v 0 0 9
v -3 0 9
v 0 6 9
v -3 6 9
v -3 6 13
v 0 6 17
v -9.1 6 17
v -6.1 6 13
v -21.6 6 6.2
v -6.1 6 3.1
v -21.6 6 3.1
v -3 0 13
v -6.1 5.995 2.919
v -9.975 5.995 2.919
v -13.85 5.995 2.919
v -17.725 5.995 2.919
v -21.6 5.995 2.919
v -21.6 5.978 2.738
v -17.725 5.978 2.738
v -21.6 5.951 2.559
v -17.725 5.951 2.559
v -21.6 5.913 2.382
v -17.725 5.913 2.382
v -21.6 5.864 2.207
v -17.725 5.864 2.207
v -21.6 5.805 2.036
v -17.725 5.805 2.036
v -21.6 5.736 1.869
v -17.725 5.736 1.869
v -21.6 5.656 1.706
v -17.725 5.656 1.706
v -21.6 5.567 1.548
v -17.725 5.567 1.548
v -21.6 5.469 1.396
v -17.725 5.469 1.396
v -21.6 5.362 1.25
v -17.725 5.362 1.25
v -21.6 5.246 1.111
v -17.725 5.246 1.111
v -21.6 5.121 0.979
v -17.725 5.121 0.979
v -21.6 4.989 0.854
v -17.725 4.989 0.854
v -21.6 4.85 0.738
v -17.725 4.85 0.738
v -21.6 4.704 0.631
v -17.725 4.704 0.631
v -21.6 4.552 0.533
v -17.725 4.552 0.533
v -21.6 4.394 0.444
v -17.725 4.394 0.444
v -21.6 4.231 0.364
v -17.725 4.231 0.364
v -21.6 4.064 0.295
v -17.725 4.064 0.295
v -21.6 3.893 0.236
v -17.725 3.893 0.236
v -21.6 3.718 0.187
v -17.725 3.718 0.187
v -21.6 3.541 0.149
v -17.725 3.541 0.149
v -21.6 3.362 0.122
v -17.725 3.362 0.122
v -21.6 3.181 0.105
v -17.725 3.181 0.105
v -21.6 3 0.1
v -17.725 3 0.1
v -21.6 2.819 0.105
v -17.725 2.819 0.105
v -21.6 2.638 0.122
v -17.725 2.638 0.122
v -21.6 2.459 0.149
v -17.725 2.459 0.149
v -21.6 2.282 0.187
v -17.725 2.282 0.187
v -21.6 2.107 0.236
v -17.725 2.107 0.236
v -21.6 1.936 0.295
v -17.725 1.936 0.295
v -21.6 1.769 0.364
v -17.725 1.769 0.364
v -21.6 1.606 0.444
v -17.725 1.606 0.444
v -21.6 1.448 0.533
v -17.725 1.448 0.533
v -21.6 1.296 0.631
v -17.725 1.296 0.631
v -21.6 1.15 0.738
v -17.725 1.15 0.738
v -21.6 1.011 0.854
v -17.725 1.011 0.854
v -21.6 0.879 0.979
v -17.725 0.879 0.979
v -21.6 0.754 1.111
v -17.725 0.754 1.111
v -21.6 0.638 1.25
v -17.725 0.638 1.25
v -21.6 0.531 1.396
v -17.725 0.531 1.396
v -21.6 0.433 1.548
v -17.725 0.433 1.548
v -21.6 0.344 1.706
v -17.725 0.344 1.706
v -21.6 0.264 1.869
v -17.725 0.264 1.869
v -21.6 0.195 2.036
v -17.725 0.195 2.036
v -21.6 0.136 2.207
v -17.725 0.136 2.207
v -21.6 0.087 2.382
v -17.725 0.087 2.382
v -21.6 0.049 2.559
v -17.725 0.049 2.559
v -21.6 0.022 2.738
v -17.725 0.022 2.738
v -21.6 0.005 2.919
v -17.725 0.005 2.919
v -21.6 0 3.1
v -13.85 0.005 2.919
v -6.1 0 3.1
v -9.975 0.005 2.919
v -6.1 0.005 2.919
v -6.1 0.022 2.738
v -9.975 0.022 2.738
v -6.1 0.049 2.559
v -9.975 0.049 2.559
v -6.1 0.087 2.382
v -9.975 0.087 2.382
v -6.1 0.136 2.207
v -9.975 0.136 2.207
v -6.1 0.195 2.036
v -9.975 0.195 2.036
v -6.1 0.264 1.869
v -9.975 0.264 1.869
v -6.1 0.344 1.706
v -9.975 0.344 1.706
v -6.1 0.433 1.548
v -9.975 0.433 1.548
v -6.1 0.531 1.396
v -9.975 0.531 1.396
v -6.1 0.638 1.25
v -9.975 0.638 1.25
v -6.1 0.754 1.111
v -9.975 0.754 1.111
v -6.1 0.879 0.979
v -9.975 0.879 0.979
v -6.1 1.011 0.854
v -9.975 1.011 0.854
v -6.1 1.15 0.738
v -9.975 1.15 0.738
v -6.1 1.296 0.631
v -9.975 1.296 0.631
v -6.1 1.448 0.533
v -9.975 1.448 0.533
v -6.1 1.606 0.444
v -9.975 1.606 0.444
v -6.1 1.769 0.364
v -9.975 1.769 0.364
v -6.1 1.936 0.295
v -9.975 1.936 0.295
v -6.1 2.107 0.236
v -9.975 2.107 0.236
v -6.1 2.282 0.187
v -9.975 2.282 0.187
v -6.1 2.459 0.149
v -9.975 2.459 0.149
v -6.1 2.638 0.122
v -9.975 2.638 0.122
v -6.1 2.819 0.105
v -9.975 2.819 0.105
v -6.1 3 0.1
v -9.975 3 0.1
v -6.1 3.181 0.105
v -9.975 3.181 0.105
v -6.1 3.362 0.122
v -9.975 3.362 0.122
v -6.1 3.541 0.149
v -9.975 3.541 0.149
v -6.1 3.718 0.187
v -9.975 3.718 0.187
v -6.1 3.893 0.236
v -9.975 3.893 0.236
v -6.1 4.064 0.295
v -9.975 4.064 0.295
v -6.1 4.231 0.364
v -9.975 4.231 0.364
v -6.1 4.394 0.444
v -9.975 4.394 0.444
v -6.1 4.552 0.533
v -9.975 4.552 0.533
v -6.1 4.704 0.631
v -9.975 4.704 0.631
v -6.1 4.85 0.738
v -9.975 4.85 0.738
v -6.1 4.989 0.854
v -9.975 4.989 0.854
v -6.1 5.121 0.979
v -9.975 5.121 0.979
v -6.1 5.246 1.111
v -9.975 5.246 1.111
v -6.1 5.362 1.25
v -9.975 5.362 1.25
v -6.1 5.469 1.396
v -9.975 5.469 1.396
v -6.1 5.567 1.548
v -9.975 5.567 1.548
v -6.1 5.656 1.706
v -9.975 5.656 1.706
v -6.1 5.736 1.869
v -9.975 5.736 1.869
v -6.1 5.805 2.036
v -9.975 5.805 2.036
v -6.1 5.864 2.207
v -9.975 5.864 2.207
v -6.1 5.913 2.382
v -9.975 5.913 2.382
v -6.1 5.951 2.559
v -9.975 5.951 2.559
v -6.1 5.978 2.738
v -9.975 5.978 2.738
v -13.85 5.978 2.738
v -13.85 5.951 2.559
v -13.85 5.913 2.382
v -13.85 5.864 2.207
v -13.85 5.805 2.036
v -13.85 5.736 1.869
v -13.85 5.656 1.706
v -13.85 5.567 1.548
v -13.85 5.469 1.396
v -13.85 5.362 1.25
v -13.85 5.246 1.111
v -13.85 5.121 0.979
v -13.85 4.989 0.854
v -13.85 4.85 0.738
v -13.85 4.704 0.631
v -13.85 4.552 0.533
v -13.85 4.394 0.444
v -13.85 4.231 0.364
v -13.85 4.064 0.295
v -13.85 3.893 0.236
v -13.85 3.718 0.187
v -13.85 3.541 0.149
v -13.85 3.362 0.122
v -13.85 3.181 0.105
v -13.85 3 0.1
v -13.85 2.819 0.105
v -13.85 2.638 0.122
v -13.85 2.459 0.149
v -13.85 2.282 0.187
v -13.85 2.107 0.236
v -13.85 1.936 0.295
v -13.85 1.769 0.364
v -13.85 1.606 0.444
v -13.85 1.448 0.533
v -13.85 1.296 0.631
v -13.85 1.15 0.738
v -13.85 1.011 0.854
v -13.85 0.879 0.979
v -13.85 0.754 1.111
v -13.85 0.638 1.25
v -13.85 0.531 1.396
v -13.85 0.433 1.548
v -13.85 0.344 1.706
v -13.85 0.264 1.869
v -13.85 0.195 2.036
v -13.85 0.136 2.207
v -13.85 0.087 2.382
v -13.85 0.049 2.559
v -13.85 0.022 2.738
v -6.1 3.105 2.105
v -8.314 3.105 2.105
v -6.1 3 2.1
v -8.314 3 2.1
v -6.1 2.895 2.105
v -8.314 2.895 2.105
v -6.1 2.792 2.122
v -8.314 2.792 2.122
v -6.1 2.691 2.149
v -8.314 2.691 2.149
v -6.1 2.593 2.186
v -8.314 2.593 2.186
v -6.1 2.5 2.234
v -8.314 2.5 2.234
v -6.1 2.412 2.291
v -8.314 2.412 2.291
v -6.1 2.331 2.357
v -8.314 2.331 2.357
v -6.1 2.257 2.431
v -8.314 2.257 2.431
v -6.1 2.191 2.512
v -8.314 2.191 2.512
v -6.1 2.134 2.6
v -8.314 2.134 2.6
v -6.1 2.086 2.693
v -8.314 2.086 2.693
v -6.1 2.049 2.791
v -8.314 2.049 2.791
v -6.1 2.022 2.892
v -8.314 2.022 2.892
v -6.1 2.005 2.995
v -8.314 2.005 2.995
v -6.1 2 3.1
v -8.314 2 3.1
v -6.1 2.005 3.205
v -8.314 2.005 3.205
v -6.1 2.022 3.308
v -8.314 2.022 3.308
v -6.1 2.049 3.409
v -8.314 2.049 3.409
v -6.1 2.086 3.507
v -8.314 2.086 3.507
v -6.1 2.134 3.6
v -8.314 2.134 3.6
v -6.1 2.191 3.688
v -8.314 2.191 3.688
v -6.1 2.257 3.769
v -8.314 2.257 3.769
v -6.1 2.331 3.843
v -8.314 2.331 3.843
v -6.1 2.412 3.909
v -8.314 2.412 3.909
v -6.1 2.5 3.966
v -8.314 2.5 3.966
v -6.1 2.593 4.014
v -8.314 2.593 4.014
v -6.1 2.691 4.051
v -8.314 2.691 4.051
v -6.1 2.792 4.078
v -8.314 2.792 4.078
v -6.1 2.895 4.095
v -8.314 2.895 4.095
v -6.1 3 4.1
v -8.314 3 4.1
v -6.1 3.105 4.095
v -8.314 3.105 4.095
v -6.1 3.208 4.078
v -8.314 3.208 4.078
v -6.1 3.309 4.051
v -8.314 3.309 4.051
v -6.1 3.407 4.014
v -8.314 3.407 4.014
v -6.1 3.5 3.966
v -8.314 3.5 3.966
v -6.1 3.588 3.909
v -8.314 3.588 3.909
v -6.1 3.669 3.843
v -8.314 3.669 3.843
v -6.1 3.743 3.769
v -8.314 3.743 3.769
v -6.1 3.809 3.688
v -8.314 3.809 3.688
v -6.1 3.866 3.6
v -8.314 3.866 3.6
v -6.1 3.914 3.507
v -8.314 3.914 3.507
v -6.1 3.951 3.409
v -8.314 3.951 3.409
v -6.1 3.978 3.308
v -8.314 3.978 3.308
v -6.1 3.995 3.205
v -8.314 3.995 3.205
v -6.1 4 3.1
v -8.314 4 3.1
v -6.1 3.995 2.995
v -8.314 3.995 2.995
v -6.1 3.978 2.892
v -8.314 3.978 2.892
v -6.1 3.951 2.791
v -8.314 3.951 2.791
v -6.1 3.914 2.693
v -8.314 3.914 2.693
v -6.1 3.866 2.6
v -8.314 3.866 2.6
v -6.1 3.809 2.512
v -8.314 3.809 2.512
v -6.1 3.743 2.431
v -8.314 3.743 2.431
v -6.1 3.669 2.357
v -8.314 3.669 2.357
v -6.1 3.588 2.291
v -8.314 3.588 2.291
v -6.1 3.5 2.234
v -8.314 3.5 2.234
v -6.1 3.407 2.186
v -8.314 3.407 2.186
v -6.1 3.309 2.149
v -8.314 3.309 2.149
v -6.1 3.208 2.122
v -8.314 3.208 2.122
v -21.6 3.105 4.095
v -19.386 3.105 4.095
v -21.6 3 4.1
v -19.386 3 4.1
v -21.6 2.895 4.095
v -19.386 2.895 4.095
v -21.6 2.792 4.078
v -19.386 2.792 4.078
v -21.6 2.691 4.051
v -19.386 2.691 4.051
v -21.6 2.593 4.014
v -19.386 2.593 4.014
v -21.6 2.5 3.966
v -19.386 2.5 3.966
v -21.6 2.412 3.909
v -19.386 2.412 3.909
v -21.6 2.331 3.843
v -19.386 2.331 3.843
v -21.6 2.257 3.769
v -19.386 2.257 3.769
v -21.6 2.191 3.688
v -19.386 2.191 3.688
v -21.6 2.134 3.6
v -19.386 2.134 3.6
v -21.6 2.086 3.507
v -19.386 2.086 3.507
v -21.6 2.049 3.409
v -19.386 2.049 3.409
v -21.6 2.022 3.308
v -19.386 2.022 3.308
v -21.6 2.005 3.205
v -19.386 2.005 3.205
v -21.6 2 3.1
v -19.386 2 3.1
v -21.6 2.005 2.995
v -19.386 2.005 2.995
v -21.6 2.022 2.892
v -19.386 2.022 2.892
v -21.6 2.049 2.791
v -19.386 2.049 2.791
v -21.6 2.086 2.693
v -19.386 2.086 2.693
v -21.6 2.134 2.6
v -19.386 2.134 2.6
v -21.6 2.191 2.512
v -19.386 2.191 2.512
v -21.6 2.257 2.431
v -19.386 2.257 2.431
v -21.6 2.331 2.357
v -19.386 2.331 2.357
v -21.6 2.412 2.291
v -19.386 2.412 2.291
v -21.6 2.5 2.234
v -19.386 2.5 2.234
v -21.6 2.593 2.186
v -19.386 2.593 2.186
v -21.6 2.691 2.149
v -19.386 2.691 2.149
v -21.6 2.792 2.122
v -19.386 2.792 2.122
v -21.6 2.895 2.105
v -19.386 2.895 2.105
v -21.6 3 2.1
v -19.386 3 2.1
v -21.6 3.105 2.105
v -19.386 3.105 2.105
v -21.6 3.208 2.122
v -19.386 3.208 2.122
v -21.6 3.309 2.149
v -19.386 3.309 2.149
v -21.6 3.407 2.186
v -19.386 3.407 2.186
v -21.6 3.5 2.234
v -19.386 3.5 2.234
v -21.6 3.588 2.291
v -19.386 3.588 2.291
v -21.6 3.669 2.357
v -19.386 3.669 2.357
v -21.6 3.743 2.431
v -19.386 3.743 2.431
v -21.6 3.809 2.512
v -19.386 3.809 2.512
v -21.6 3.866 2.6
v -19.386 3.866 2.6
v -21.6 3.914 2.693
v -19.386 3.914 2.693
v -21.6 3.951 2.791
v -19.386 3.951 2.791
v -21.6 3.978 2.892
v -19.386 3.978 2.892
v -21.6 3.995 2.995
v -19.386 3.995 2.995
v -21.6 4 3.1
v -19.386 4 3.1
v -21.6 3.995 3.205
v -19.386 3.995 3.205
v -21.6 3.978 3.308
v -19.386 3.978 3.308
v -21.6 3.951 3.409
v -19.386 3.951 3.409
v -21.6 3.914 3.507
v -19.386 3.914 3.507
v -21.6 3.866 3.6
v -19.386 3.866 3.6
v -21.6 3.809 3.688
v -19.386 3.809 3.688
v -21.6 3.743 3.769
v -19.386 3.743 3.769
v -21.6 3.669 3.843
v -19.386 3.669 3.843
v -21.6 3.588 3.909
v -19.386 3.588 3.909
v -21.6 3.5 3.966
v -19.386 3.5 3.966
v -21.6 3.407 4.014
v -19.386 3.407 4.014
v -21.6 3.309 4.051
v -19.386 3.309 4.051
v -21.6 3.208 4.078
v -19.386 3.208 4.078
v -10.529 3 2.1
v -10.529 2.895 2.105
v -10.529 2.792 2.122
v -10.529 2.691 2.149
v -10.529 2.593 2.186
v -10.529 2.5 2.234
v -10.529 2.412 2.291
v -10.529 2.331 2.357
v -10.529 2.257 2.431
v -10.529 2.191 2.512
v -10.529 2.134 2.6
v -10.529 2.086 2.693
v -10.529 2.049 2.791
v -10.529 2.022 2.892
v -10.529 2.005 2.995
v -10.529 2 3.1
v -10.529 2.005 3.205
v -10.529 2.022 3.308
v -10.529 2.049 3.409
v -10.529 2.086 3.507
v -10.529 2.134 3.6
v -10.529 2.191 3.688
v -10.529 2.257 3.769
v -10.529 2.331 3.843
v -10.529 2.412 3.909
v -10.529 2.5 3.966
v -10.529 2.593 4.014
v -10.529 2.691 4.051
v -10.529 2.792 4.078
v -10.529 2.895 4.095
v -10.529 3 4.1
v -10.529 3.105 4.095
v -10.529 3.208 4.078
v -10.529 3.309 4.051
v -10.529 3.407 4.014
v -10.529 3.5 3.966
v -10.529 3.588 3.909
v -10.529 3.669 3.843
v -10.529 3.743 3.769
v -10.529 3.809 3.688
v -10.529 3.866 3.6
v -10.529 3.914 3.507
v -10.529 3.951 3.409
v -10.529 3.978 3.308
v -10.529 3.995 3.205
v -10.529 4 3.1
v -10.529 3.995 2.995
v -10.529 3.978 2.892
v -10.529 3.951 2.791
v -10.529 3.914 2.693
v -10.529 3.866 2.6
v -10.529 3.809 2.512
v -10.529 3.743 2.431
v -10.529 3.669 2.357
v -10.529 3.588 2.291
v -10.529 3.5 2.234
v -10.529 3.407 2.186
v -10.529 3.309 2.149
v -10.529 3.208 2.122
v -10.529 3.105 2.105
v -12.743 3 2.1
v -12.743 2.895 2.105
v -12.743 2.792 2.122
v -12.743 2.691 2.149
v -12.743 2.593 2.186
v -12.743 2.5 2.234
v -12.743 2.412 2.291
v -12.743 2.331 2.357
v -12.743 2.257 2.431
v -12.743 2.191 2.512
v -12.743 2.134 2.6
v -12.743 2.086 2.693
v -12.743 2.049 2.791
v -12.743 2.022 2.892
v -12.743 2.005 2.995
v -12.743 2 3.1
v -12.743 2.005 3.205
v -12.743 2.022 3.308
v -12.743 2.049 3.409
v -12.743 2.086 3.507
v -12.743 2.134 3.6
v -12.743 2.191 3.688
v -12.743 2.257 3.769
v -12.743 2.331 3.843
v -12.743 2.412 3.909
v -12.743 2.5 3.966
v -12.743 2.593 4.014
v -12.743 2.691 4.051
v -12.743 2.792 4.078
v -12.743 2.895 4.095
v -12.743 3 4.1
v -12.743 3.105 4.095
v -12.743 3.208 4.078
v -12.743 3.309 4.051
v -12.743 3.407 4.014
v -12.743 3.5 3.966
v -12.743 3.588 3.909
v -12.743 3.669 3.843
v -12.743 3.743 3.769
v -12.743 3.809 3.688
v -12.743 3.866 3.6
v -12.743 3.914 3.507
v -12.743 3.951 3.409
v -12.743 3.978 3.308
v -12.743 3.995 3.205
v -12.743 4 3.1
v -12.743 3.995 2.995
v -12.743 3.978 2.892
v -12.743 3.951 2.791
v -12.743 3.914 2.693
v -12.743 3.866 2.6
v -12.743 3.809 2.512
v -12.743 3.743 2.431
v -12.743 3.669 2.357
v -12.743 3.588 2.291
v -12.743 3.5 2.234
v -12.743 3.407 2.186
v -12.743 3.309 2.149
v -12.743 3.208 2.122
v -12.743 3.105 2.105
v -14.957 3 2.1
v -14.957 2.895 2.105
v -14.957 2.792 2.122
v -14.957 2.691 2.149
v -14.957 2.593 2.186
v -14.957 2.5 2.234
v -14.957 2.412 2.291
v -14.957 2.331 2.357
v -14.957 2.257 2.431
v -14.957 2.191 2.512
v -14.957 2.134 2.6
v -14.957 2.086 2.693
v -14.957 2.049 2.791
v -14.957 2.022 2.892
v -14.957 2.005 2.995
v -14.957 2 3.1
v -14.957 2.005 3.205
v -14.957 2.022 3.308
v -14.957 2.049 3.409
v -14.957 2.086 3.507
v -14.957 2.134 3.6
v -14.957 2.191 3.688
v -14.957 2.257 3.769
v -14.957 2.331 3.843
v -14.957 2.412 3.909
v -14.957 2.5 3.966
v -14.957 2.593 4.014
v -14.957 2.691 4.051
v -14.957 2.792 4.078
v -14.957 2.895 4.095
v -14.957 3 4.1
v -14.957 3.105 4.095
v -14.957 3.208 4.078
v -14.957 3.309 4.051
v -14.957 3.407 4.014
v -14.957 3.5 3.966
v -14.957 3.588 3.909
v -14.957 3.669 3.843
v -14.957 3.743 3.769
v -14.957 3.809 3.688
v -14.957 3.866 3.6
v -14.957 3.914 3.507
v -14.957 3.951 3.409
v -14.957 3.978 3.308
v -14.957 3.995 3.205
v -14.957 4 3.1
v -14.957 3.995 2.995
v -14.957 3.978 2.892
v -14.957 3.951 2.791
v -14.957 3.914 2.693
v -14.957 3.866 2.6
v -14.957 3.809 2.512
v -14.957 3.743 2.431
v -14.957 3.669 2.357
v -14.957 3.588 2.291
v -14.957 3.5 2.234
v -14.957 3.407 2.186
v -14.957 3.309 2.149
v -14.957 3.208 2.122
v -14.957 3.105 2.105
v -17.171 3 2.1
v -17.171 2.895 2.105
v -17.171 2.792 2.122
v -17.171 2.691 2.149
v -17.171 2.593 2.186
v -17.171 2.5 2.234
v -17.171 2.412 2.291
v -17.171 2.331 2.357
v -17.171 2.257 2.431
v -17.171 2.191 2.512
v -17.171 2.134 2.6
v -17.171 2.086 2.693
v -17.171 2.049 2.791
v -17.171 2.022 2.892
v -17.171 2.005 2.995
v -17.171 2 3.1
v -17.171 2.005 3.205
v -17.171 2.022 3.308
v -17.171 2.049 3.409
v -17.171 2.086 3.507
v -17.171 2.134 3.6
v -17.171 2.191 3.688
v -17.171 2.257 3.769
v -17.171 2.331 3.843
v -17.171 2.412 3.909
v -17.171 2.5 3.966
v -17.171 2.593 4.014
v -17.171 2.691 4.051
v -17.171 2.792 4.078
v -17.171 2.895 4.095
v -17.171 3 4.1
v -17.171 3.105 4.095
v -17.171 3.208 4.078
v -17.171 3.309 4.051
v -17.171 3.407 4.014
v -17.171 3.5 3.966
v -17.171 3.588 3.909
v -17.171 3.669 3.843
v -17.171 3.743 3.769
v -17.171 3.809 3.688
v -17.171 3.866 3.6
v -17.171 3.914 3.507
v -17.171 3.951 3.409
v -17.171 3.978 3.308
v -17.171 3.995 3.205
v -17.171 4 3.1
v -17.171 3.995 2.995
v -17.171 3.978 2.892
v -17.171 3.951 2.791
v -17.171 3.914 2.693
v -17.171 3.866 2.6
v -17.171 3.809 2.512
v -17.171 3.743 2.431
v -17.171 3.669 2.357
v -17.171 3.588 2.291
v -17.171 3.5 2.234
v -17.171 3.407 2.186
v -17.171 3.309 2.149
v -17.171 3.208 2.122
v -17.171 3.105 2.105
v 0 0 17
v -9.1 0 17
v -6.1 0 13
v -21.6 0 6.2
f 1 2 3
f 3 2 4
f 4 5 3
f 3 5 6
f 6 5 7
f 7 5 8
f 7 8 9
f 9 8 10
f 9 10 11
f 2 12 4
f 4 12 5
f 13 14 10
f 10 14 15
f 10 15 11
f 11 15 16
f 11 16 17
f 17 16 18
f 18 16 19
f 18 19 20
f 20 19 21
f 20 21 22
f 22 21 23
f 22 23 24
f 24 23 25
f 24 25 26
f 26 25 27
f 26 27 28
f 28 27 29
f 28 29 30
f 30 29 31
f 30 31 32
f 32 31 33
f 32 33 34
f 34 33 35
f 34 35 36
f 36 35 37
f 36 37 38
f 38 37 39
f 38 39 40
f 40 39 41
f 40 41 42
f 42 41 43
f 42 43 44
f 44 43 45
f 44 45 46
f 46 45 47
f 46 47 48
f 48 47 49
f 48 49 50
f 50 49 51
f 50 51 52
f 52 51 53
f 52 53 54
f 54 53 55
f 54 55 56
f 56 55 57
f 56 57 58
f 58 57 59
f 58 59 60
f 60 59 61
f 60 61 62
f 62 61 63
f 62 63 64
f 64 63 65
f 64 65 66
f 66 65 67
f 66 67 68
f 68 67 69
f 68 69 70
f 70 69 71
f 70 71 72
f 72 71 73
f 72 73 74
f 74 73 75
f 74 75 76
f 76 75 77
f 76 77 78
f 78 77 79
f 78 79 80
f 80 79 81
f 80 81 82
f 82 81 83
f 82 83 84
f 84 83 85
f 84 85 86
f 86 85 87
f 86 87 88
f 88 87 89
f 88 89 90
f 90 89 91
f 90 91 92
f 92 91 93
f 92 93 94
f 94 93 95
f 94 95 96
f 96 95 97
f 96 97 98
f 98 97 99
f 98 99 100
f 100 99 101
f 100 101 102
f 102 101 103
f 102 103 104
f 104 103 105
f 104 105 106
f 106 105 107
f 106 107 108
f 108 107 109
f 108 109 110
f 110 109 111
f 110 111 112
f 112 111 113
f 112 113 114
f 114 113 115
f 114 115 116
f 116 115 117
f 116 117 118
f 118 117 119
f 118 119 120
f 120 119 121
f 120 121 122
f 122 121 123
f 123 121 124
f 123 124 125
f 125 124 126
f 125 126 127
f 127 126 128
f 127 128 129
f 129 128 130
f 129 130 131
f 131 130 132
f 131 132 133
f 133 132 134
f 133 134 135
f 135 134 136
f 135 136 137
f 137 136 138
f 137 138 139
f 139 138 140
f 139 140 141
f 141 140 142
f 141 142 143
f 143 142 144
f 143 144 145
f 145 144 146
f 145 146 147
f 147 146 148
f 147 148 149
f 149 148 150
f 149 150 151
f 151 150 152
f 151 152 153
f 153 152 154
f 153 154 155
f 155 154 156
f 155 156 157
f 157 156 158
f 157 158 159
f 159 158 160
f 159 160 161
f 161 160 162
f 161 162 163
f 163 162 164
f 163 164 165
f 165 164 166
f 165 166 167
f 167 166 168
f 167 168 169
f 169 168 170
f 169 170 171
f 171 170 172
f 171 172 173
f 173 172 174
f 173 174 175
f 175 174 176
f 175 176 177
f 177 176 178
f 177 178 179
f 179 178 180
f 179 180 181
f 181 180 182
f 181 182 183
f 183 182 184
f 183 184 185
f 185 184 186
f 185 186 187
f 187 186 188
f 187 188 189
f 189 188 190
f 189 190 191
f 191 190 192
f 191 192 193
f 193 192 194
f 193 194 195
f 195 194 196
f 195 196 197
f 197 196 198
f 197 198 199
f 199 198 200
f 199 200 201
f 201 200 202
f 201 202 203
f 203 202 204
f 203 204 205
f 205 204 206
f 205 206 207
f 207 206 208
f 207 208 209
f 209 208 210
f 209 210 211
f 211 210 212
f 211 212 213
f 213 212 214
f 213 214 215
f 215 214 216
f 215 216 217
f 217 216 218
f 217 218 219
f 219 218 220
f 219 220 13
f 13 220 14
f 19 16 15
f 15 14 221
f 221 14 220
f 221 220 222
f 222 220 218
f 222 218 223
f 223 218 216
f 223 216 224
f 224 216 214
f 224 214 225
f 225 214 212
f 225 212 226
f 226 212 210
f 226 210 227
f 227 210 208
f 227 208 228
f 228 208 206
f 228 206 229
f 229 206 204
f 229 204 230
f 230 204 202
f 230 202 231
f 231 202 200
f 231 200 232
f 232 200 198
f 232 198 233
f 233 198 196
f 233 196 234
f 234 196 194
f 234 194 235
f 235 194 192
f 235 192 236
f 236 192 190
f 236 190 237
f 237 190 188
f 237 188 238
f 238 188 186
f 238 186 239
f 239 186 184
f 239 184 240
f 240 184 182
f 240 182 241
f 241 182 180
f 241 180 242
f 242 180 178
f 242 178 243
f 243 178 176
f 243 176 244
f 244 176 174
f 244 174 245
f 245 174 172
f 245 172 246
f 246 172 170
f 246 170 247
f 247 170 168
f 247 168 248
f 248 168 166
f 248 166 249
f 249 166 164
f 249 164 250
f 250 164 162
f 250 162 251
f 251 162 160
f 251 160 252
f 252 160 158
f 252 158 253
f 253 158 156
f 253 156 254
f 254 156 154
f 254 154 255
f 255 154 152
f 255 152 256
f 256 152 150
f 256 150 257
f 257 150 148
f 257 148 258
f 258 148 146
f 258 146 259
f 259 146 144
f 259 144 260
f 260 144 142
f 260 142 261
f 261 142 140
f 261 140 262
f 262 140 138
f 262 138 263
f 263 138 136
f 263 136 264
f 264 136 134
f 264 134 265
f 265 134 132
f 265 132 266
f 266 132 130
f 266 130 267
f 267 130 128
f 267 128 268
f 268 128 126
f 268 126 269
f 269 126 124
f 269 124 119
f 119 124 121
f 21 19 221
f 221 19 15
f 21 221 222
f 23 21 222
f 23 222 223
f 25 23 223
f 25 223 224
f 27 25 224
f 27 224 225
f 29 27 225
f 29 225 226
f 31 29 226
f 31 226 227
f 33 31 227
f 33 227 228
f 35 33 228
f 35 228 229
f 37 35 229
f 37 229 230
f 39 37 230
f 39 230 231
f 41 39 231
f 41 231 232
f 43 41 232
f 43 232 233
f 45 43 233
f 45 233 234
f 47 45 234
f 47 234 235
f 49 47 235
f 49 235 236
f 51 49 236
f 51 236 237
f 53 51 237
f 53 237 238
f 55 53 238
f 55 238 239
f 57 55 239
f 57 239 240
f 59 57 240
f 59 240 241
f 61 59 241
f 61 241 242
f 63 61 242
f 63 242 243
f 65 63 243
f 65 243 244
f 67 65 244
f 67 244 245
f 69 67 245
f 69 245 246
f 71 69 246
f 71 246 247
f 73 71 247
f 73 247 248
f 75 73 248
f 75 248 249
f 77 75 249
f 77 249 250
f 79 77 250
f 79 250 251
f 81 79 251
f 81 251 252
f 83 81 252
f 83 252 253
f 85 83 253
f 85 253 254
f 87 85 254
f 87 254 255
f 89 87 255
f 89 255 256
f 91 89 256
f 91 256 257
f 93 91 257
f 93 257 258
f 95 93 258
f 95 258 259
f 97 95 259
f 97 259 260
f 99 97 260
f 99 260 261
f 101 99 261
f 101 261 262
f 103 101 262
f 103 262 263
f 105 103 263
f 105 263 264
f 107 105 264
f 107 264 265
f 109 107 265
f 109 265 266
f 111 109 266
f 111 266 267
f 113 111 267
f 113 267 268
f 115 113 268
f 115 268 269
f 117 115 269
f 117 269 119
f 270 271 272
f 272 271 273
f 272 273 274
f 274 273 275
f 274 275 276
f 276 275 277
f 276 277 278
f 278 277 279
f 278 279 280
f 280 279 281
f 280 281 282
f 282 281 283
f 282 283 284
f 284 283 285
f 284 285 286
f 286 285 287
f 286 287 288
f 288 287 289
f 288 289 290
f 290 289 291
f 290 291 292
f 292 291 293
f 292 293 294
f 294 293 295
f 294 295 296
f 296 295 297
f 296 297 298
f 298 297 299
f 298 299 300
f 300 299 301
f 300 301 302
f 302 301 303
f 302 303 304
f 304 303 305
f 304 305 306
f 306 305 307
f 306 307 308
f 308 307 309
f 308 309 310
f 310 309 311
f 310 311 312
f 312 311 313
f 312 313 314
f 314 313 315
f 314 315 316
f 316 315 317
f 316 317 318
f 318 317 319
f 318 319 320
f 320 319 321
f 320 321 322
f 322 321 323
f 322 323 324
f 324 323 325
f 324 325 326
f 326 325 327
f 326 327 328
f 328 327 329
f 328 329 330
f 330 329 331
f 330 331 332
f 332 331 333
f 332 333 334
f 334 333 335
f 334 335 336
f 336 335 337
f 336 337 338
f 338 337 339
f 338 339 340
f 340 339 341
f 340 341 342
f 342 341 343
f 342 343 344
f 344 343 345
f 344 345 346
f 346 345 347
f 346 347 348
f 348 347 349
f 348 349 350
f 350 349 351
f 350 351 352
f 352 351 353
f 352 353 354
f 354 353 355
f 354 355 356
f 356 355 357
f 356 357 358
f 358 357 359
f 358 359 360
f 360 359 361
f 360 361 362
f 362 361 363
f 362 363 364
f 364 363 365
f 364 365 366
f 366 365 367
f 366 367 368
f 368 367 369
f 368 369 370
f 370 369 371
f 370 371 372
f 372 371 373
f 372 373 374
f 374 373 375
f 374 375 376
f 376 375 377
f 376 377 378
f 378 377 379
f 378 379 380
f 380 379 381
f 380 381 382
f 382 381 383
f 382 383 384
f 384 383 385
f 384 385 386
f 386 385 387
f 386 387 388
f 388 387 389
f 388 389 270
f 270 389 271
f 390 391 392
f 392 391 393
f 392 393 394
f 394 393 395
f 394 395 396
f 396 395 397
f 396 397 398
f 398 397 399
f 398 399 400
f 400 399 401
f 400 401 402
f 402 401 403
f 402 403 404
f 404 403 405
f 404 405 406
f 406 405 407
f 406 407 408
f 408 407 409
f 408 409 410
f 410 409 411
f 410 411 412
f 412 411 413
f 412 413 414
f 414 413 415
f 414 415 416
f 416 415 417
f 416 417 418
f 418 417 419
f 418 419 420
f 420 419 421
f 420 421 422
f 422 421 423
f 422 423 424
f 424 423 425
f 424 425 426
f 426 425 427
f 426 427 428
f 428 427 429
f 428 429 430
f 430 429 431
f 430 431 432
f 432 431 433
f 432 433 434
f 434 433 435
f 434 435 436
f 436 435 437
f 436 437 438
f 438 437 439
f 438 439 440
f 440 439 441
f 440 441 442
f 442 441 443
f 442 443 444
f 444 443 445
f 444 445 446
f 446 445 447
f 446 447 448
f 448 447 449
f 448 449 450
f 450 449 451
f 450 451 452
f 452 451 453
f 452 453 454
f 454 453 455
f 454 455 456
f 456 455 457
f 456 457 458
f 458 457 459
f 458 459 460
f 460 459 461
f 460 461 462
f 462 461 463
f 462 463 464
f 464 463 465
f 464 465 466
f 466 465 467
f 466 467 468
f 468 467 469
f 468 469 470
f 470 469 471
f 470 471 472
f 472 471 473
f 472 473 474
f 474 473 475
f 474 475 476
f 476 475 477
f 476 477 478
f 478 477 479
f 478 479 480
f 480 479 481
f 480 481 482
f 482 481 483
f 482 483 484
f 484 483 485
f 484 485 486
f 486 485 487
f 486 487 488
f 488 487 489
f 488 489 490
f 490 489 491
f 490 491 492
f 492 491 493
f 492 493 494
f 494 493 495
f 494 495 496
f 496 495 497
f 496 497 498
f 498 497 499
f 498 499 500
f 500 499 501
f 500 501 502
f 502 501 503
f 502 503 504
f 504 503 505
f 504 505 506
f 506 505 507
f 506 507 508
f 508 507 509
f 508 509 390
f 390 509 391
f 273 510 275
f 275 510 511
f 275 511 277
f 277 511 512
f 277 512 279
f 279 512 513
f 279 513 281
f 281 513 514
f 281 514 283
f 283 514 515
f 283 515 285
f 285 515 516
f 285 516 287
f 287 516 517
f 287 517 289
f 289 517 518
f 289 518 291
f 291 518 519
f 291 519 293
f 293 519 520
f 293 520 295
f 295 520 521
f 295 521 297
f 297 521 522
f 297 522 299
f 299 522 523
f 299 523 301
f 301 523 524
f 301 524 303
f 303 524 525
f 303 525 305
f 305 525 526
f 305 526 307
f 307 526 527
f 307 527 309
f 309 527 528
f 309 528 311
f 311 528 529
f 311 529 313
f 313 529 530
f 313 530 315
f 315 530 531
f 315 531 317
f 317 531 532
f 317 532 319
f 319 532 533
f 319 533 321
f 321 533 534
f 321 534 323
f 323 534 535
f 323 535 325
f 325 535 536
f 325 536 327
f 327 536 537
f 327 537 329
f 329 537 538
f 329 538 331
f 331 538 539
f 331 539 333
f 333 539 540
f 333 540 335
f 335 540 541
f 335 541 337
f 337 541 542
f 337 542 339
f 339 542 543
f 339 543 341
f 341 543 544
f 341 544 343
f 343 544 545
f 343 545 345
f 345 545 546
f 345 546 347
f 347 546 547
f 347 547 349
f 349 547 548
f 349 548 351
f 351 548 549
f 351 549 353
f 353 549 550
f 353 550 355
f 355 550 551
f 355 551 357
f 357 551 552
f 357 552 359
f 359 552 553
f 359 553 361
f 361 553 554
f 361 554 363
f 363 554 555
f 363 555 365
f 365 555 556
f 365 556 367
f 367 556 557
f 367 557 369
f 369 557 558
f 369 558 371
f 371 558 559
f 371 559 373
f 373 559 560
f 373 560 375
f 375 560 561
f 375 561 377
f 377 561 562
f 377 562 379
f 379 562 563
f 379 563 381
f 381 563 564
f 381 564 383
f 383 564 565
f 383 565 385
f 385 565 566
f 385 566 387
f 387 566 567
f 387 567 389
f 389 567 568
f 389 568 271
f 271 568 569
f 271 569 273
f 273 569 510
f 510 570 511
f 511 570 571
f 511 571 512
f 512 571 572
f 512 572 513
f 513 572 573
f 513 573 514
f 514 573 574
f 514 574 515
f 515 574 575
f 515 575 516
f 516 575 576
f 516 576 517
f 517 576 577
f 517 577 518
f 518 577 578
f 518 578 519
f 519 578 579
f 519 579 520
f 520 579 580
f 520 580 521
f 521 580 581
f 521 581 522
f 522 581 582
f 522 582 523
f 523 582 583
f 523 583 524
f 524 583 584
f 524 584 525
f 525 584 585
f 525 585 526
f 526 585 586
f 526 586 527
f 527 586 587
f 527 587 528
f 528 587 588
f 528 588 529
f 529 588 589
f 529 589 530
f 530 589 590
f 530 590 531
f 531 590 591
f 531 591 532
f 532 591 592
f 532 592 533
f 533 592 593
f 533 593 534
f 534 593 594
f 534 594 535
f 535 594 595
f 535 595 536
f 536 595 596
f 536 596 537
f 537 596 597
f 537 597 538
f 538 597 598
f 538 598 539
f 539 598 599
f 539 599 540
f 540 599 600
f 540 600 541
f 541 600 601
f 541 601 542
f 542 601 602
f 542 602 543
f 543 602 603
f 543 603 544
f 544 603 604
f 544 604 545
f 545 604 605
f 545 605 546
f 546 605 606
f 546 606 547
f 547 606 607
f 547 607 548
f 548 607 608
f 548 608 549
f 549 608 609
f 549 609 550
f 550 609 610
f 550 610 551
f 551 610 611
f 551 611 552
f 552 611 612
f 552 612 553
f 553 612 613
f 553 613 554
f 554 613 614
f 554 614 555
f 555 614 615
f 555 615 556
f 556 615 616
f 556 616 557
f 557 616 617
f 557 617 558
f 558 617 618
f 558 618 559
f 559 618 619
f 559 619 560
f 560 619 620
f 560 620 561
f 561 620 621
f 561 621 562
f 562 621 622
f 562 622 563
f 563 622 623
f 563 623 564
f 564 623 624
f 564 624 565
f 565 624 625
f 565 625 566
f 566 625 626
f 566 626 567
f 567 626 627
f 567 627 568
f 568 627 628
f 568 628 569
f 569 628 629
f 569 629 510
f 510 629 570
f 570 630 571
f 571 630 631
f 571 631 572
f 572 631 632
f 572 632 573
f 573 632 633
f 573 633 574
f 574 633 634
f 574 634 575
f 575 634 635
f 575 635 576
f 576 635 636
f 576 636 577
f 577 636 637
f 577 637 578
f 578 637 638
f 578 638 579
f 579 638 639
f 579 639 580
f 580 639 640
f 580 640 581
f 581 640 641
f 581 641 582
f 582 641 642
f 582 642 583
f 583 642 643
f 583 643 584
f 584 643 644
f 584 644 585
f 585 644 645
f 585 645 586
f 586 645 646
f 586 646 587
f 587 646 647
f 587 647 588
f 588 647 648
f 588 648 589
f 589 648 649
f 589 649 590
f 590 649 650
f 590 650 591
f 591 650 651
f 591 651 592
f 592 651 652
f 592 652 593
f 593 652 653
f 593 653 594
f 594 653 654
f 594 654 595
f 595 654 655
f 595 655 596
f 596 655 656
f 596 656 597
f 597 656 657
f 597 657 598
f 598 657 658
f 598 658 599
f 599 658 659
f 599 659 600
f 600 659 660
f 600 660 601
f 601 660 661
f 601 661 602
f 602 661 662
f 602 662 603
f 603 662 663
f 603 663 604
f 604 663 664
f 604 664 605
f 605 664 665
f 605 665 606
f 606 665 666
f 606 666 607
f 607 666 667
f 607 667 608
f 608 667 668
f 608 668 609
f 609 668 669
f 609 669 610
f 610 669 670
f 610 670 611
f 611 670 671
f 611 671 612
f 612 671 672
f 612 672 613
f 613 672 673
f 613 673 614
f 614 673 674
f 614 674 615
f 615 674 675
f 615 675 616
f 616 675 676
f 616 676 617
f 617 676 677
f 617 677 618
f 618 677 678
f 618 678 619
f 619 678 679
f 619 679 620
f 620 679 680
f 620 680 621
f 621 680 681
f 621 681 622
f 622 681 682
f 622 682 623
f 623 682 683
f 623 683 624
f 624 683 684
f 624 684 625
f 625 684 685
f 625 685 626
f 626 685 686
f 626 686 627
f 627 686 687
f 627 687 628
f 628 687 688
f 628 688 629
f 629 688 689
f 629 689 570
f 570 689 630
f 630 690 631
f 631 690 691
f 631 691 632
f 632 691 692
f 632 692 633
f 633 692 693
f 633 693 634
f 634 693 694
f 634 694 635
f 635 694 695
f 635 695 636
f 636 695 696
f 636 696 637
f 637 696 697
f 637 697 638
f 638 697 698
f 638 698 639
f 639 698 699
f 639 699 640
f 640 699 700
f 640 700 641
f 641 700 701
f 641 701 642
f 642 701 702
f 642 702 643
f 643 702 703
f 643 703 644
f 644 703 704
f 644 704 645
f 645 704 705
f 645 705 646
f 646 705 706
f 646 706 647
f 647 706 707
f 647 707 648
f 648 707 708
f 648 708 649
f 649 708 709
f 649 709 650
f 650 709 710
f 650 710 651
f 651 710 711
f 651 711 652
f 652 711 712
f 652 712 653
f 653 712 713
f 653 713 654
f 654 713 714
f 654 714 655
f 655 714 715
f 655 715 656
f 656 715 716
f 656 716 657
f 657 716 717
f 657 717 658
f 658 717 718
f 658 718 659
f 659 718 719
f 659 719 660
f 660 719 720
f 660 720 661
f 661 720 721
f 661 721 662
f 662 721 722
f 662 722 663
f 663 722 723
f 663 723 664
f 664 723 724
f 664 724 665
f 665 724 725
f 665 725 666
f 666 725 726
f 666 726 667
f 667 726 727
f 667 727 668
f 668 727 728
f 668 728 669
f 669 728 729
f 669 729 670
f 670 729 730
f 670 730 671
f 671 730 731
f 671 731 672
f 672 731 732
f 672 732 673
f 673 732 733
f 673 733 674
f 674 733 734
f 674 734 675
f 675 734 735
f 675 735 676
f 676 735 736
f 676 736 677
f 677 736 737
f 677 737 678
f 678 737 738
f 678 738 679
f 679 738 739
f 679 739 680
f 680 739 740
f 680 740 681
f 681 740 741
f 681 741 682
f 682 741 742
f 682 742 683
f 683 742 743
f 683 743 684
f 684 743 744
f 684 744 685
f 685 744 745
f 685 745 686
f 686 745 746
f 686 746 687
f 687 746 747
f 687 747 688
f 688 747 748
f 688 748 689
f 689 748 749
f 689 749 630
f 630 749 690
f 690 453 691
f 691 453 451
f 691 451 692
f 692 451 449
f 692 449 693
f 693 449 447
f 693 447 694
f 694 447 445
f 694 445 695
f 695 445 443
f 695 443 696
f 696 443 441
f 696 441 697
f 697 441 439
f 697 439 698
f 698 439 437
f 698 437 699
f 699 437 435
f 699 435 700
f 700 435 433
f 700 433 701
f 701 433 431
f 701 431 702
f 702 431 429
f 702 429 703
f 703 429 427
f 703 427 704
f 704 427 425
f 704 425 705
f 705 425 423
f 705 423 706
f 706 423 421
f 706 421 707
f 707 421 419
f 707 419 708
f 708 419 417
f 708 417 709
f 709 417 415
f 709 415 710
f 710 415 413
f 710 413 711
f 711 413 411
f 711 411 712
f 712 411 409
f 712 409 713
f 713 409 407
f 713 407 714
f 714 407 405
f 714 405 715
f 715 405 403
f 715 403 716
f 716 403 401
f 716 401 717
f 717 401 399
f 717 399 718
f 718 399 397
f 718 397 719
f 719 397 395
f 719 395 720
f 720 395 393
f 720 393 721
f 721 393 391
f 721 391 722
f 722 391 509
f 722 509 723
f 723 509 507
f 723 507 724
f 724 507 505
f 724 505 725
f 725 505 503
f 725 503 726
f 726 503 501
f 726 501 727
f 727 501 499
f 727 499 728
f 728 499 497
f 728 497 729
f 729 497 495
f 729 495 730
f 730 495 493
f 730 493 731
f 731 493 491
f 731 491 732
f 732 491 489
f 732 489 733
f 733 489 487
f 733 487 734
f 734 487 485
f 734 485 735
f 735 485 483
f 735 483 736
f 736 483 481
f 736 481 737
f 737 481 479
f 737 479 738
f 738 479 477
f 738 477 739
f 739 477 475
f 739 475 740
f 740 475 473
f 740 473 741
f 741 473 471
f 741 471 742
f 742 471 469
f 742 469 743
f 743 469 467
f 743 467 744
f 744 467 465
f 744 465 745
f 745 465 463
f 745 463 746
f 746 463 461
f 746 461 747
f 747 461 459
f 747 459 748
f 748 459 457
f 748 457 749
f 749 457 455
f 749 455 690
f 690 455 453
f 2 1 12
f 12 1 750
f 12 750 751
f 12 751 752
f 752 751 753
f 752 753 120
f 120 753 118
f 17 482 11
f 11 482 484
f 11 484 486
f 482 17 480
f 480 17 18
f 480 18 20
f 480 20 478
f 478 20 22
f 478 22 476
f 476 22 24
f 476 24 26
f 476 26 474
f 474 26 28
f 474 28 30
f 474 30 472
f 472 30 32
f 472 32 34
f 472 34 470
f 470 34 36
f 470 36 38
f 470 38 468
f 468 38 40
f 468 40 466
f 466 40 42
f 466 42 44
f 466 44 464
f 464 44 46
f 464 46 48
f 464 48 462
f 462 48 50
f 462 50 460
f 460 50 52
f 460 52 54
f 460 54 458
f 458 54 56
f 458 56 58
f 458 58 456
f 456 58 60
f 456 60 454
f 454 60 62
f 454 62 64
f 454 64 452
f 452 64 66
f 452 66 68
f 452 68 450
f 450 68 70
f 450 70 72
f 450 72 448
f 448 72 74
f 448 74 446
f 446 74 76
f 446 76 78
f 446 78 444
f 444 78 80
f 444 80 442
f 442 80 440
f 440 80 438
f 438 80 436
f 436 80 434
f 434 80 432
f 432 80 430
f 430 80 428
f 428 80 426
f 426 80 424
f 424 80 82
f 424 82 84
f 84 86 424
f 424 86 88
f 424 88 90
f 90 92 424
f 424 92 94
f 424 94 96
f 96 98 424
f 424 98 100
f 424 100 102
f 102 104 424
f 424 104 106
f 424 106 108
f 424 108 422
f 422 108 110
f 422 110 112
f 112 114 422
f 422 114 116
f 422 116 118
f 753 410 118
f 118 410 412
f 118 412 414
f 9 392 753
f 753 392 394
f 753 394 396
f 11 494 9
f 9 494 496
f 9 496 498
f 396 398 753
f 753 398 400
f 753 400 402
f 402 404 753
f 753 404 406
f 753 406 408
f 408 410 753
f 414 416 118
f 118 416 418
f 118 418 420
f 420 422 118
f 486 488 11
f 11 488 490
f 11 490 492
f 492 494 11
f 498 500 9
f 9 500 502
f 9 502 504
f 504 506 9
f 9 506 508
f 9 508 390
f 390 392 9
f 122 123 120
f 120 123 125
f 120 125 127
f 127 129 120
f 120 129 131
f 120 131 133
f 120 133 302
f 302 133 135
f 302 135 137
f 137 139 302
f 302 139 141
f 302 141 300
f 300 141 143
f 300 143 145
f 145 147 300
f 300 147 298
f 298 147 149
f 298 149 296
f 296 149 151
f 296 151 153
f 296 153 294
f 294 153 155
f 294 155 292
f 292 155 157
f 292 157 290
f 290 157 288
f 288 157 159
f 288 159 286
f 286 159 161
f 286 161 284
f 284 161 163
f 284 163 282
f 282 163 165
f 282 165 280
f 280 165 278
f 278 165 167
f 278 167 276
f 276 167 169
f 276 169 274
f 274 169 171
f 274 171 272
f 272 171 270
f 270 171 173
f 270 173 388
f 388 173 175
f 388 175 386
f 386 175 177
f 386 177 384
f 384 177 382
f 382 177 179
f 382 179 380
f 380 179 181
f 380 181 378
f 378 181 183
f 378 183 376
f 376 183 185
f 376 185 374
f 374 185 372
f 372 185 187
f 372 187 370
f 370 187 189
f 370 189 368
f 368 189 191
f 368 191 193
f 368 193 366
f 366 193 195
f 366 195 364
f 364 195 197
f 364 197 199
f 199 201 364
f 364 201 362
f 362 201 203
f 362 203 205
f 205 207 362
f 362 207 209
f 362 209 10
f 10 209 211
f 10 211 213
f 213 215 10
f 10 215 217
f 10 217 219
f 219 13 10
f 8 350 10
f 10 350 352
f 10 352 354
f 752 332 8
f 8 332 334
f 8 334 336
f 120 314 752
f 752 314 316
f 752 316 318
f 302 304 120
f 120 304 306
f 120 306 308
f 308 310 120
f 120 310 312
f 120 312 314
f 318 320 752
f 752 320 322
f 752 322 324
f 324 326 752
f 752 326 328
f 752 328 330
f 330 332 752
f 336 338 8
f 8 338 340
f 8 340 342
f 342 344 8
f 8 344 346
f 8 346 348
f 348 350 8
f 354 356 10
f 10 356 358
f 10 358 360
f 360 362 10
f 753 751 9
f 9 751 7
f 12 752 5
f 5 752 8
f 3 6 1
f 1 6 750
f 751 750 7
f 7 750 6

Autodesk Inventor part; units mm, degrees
ref_plane "YZ Plane" through (0, 0, 0) normal (1, 0, 0) x (0, 1, 0)
ref_plane "XZ Plane" through (0, 0, 0) normal (0, 1, 0) x (-1, 0, 0)
ref_plane "XY Plane" through (0, 0, 0) normal (0, 0, 1) x (1, 0, 0)
sketch "Sketch1" plane through (0, 0, 0) normal (0, 1, 0) x (-1, 0, 0)
  line L0 (0, 0) -> (21.6, 0)
  line L1 (21.6, 0) -> (21.6, 17)
  line L2 (21.6, 17) -> (0, 17)
  line L3 (0, 17) -> (0, 0)
  line L4 (6.1, 13) -> (3, 13)
  line L5 (3, 13) -> (3, 0)
  line L6 (3, 0) -> (6.1, 0)
  line L7 (6.1, 0) -> (6.1, 13)
  line L8 (21.6, 17) -> (9.1, 17)
  line L9 (9.1, 17) -> (9.1, 0)
  line L10 (9.1, 0) -> (21.6, 0)
  line L11 (21.6, 0) -> (21.6, 17)
  line L12 (9.1, 17) -> (21.6, 6.2)
  point P0 (21.6, 6.2)
  point P1 (9.1, 17)
  dimension "d1" = 17
  dimension "d2" = 3.1
  dimension "d3" = 3
  dimension "d4" = 3
  dimension "d5" = 6.2
  dimension "d17" = 13
  dimension "d18" = 12.5
extrude "Extrusion1" add sketch "Sketch1" along normal blind 6 contours L3 L2 L9 L0 L7 L4 L5 | L12 L1 L0 L9
sketch "Sketch2" plane through (-21.6, 0, 0) normal (-1, 0, 0) x (0, 0, 1)
  circle A0 centre (3.1, 3) radius 3
  line L0 (0, 0) -> (13, 0) projected
  line L1 (0, 0) -> (0, 6) projected
  line L2 (17, 6) -> (0, 6) projected
  line L3 (0, 0) -> (6.2302, 0)
  line L4 (6.2302, 0) -> (6.2302, 6)
  line L5 (6.2302, 6) -> (0, 6)
  line L6 (0, 6) -> (0, 0)
  circle A1 centre (3.1, 3) radius 1
  point P0 (3.1, 6)
  point P1 (3.1, 0)
  dimension "d8" = 3.1
  dimension "d9" = 2
extrude "Extrusion2" cut sketch "Sketch2" against normal up to surface (18.6 mm away) contours A0 L0 L1 L2 | A1
sketch "Sketch3" plane through (0, 6, 0) normal (0, 1, 0) x (1, 0, 0)
  line L0 (-3, 0) -> (-3, -13) projected
  line L1 (0, 0) -> (-3, 0) projected
  line L2 (-3, -9) -> (0, -9)
  line L3 (0, -9) -> (0, 0)
  line L4 (0, 0) -> (-3, 0)
  line L5 (-3, 0) -> (-3, -9)
  line L6 (-3, -13) -> (-6.1, -13) projected
  line L7 (-9.1, -17) -> (0, -17) projected
  dimension "d13" = 8
extrude "Extrusion3" cut sketch "Sketch3" against normal blind 10
properties part number "Pi3B_spacer_R"
